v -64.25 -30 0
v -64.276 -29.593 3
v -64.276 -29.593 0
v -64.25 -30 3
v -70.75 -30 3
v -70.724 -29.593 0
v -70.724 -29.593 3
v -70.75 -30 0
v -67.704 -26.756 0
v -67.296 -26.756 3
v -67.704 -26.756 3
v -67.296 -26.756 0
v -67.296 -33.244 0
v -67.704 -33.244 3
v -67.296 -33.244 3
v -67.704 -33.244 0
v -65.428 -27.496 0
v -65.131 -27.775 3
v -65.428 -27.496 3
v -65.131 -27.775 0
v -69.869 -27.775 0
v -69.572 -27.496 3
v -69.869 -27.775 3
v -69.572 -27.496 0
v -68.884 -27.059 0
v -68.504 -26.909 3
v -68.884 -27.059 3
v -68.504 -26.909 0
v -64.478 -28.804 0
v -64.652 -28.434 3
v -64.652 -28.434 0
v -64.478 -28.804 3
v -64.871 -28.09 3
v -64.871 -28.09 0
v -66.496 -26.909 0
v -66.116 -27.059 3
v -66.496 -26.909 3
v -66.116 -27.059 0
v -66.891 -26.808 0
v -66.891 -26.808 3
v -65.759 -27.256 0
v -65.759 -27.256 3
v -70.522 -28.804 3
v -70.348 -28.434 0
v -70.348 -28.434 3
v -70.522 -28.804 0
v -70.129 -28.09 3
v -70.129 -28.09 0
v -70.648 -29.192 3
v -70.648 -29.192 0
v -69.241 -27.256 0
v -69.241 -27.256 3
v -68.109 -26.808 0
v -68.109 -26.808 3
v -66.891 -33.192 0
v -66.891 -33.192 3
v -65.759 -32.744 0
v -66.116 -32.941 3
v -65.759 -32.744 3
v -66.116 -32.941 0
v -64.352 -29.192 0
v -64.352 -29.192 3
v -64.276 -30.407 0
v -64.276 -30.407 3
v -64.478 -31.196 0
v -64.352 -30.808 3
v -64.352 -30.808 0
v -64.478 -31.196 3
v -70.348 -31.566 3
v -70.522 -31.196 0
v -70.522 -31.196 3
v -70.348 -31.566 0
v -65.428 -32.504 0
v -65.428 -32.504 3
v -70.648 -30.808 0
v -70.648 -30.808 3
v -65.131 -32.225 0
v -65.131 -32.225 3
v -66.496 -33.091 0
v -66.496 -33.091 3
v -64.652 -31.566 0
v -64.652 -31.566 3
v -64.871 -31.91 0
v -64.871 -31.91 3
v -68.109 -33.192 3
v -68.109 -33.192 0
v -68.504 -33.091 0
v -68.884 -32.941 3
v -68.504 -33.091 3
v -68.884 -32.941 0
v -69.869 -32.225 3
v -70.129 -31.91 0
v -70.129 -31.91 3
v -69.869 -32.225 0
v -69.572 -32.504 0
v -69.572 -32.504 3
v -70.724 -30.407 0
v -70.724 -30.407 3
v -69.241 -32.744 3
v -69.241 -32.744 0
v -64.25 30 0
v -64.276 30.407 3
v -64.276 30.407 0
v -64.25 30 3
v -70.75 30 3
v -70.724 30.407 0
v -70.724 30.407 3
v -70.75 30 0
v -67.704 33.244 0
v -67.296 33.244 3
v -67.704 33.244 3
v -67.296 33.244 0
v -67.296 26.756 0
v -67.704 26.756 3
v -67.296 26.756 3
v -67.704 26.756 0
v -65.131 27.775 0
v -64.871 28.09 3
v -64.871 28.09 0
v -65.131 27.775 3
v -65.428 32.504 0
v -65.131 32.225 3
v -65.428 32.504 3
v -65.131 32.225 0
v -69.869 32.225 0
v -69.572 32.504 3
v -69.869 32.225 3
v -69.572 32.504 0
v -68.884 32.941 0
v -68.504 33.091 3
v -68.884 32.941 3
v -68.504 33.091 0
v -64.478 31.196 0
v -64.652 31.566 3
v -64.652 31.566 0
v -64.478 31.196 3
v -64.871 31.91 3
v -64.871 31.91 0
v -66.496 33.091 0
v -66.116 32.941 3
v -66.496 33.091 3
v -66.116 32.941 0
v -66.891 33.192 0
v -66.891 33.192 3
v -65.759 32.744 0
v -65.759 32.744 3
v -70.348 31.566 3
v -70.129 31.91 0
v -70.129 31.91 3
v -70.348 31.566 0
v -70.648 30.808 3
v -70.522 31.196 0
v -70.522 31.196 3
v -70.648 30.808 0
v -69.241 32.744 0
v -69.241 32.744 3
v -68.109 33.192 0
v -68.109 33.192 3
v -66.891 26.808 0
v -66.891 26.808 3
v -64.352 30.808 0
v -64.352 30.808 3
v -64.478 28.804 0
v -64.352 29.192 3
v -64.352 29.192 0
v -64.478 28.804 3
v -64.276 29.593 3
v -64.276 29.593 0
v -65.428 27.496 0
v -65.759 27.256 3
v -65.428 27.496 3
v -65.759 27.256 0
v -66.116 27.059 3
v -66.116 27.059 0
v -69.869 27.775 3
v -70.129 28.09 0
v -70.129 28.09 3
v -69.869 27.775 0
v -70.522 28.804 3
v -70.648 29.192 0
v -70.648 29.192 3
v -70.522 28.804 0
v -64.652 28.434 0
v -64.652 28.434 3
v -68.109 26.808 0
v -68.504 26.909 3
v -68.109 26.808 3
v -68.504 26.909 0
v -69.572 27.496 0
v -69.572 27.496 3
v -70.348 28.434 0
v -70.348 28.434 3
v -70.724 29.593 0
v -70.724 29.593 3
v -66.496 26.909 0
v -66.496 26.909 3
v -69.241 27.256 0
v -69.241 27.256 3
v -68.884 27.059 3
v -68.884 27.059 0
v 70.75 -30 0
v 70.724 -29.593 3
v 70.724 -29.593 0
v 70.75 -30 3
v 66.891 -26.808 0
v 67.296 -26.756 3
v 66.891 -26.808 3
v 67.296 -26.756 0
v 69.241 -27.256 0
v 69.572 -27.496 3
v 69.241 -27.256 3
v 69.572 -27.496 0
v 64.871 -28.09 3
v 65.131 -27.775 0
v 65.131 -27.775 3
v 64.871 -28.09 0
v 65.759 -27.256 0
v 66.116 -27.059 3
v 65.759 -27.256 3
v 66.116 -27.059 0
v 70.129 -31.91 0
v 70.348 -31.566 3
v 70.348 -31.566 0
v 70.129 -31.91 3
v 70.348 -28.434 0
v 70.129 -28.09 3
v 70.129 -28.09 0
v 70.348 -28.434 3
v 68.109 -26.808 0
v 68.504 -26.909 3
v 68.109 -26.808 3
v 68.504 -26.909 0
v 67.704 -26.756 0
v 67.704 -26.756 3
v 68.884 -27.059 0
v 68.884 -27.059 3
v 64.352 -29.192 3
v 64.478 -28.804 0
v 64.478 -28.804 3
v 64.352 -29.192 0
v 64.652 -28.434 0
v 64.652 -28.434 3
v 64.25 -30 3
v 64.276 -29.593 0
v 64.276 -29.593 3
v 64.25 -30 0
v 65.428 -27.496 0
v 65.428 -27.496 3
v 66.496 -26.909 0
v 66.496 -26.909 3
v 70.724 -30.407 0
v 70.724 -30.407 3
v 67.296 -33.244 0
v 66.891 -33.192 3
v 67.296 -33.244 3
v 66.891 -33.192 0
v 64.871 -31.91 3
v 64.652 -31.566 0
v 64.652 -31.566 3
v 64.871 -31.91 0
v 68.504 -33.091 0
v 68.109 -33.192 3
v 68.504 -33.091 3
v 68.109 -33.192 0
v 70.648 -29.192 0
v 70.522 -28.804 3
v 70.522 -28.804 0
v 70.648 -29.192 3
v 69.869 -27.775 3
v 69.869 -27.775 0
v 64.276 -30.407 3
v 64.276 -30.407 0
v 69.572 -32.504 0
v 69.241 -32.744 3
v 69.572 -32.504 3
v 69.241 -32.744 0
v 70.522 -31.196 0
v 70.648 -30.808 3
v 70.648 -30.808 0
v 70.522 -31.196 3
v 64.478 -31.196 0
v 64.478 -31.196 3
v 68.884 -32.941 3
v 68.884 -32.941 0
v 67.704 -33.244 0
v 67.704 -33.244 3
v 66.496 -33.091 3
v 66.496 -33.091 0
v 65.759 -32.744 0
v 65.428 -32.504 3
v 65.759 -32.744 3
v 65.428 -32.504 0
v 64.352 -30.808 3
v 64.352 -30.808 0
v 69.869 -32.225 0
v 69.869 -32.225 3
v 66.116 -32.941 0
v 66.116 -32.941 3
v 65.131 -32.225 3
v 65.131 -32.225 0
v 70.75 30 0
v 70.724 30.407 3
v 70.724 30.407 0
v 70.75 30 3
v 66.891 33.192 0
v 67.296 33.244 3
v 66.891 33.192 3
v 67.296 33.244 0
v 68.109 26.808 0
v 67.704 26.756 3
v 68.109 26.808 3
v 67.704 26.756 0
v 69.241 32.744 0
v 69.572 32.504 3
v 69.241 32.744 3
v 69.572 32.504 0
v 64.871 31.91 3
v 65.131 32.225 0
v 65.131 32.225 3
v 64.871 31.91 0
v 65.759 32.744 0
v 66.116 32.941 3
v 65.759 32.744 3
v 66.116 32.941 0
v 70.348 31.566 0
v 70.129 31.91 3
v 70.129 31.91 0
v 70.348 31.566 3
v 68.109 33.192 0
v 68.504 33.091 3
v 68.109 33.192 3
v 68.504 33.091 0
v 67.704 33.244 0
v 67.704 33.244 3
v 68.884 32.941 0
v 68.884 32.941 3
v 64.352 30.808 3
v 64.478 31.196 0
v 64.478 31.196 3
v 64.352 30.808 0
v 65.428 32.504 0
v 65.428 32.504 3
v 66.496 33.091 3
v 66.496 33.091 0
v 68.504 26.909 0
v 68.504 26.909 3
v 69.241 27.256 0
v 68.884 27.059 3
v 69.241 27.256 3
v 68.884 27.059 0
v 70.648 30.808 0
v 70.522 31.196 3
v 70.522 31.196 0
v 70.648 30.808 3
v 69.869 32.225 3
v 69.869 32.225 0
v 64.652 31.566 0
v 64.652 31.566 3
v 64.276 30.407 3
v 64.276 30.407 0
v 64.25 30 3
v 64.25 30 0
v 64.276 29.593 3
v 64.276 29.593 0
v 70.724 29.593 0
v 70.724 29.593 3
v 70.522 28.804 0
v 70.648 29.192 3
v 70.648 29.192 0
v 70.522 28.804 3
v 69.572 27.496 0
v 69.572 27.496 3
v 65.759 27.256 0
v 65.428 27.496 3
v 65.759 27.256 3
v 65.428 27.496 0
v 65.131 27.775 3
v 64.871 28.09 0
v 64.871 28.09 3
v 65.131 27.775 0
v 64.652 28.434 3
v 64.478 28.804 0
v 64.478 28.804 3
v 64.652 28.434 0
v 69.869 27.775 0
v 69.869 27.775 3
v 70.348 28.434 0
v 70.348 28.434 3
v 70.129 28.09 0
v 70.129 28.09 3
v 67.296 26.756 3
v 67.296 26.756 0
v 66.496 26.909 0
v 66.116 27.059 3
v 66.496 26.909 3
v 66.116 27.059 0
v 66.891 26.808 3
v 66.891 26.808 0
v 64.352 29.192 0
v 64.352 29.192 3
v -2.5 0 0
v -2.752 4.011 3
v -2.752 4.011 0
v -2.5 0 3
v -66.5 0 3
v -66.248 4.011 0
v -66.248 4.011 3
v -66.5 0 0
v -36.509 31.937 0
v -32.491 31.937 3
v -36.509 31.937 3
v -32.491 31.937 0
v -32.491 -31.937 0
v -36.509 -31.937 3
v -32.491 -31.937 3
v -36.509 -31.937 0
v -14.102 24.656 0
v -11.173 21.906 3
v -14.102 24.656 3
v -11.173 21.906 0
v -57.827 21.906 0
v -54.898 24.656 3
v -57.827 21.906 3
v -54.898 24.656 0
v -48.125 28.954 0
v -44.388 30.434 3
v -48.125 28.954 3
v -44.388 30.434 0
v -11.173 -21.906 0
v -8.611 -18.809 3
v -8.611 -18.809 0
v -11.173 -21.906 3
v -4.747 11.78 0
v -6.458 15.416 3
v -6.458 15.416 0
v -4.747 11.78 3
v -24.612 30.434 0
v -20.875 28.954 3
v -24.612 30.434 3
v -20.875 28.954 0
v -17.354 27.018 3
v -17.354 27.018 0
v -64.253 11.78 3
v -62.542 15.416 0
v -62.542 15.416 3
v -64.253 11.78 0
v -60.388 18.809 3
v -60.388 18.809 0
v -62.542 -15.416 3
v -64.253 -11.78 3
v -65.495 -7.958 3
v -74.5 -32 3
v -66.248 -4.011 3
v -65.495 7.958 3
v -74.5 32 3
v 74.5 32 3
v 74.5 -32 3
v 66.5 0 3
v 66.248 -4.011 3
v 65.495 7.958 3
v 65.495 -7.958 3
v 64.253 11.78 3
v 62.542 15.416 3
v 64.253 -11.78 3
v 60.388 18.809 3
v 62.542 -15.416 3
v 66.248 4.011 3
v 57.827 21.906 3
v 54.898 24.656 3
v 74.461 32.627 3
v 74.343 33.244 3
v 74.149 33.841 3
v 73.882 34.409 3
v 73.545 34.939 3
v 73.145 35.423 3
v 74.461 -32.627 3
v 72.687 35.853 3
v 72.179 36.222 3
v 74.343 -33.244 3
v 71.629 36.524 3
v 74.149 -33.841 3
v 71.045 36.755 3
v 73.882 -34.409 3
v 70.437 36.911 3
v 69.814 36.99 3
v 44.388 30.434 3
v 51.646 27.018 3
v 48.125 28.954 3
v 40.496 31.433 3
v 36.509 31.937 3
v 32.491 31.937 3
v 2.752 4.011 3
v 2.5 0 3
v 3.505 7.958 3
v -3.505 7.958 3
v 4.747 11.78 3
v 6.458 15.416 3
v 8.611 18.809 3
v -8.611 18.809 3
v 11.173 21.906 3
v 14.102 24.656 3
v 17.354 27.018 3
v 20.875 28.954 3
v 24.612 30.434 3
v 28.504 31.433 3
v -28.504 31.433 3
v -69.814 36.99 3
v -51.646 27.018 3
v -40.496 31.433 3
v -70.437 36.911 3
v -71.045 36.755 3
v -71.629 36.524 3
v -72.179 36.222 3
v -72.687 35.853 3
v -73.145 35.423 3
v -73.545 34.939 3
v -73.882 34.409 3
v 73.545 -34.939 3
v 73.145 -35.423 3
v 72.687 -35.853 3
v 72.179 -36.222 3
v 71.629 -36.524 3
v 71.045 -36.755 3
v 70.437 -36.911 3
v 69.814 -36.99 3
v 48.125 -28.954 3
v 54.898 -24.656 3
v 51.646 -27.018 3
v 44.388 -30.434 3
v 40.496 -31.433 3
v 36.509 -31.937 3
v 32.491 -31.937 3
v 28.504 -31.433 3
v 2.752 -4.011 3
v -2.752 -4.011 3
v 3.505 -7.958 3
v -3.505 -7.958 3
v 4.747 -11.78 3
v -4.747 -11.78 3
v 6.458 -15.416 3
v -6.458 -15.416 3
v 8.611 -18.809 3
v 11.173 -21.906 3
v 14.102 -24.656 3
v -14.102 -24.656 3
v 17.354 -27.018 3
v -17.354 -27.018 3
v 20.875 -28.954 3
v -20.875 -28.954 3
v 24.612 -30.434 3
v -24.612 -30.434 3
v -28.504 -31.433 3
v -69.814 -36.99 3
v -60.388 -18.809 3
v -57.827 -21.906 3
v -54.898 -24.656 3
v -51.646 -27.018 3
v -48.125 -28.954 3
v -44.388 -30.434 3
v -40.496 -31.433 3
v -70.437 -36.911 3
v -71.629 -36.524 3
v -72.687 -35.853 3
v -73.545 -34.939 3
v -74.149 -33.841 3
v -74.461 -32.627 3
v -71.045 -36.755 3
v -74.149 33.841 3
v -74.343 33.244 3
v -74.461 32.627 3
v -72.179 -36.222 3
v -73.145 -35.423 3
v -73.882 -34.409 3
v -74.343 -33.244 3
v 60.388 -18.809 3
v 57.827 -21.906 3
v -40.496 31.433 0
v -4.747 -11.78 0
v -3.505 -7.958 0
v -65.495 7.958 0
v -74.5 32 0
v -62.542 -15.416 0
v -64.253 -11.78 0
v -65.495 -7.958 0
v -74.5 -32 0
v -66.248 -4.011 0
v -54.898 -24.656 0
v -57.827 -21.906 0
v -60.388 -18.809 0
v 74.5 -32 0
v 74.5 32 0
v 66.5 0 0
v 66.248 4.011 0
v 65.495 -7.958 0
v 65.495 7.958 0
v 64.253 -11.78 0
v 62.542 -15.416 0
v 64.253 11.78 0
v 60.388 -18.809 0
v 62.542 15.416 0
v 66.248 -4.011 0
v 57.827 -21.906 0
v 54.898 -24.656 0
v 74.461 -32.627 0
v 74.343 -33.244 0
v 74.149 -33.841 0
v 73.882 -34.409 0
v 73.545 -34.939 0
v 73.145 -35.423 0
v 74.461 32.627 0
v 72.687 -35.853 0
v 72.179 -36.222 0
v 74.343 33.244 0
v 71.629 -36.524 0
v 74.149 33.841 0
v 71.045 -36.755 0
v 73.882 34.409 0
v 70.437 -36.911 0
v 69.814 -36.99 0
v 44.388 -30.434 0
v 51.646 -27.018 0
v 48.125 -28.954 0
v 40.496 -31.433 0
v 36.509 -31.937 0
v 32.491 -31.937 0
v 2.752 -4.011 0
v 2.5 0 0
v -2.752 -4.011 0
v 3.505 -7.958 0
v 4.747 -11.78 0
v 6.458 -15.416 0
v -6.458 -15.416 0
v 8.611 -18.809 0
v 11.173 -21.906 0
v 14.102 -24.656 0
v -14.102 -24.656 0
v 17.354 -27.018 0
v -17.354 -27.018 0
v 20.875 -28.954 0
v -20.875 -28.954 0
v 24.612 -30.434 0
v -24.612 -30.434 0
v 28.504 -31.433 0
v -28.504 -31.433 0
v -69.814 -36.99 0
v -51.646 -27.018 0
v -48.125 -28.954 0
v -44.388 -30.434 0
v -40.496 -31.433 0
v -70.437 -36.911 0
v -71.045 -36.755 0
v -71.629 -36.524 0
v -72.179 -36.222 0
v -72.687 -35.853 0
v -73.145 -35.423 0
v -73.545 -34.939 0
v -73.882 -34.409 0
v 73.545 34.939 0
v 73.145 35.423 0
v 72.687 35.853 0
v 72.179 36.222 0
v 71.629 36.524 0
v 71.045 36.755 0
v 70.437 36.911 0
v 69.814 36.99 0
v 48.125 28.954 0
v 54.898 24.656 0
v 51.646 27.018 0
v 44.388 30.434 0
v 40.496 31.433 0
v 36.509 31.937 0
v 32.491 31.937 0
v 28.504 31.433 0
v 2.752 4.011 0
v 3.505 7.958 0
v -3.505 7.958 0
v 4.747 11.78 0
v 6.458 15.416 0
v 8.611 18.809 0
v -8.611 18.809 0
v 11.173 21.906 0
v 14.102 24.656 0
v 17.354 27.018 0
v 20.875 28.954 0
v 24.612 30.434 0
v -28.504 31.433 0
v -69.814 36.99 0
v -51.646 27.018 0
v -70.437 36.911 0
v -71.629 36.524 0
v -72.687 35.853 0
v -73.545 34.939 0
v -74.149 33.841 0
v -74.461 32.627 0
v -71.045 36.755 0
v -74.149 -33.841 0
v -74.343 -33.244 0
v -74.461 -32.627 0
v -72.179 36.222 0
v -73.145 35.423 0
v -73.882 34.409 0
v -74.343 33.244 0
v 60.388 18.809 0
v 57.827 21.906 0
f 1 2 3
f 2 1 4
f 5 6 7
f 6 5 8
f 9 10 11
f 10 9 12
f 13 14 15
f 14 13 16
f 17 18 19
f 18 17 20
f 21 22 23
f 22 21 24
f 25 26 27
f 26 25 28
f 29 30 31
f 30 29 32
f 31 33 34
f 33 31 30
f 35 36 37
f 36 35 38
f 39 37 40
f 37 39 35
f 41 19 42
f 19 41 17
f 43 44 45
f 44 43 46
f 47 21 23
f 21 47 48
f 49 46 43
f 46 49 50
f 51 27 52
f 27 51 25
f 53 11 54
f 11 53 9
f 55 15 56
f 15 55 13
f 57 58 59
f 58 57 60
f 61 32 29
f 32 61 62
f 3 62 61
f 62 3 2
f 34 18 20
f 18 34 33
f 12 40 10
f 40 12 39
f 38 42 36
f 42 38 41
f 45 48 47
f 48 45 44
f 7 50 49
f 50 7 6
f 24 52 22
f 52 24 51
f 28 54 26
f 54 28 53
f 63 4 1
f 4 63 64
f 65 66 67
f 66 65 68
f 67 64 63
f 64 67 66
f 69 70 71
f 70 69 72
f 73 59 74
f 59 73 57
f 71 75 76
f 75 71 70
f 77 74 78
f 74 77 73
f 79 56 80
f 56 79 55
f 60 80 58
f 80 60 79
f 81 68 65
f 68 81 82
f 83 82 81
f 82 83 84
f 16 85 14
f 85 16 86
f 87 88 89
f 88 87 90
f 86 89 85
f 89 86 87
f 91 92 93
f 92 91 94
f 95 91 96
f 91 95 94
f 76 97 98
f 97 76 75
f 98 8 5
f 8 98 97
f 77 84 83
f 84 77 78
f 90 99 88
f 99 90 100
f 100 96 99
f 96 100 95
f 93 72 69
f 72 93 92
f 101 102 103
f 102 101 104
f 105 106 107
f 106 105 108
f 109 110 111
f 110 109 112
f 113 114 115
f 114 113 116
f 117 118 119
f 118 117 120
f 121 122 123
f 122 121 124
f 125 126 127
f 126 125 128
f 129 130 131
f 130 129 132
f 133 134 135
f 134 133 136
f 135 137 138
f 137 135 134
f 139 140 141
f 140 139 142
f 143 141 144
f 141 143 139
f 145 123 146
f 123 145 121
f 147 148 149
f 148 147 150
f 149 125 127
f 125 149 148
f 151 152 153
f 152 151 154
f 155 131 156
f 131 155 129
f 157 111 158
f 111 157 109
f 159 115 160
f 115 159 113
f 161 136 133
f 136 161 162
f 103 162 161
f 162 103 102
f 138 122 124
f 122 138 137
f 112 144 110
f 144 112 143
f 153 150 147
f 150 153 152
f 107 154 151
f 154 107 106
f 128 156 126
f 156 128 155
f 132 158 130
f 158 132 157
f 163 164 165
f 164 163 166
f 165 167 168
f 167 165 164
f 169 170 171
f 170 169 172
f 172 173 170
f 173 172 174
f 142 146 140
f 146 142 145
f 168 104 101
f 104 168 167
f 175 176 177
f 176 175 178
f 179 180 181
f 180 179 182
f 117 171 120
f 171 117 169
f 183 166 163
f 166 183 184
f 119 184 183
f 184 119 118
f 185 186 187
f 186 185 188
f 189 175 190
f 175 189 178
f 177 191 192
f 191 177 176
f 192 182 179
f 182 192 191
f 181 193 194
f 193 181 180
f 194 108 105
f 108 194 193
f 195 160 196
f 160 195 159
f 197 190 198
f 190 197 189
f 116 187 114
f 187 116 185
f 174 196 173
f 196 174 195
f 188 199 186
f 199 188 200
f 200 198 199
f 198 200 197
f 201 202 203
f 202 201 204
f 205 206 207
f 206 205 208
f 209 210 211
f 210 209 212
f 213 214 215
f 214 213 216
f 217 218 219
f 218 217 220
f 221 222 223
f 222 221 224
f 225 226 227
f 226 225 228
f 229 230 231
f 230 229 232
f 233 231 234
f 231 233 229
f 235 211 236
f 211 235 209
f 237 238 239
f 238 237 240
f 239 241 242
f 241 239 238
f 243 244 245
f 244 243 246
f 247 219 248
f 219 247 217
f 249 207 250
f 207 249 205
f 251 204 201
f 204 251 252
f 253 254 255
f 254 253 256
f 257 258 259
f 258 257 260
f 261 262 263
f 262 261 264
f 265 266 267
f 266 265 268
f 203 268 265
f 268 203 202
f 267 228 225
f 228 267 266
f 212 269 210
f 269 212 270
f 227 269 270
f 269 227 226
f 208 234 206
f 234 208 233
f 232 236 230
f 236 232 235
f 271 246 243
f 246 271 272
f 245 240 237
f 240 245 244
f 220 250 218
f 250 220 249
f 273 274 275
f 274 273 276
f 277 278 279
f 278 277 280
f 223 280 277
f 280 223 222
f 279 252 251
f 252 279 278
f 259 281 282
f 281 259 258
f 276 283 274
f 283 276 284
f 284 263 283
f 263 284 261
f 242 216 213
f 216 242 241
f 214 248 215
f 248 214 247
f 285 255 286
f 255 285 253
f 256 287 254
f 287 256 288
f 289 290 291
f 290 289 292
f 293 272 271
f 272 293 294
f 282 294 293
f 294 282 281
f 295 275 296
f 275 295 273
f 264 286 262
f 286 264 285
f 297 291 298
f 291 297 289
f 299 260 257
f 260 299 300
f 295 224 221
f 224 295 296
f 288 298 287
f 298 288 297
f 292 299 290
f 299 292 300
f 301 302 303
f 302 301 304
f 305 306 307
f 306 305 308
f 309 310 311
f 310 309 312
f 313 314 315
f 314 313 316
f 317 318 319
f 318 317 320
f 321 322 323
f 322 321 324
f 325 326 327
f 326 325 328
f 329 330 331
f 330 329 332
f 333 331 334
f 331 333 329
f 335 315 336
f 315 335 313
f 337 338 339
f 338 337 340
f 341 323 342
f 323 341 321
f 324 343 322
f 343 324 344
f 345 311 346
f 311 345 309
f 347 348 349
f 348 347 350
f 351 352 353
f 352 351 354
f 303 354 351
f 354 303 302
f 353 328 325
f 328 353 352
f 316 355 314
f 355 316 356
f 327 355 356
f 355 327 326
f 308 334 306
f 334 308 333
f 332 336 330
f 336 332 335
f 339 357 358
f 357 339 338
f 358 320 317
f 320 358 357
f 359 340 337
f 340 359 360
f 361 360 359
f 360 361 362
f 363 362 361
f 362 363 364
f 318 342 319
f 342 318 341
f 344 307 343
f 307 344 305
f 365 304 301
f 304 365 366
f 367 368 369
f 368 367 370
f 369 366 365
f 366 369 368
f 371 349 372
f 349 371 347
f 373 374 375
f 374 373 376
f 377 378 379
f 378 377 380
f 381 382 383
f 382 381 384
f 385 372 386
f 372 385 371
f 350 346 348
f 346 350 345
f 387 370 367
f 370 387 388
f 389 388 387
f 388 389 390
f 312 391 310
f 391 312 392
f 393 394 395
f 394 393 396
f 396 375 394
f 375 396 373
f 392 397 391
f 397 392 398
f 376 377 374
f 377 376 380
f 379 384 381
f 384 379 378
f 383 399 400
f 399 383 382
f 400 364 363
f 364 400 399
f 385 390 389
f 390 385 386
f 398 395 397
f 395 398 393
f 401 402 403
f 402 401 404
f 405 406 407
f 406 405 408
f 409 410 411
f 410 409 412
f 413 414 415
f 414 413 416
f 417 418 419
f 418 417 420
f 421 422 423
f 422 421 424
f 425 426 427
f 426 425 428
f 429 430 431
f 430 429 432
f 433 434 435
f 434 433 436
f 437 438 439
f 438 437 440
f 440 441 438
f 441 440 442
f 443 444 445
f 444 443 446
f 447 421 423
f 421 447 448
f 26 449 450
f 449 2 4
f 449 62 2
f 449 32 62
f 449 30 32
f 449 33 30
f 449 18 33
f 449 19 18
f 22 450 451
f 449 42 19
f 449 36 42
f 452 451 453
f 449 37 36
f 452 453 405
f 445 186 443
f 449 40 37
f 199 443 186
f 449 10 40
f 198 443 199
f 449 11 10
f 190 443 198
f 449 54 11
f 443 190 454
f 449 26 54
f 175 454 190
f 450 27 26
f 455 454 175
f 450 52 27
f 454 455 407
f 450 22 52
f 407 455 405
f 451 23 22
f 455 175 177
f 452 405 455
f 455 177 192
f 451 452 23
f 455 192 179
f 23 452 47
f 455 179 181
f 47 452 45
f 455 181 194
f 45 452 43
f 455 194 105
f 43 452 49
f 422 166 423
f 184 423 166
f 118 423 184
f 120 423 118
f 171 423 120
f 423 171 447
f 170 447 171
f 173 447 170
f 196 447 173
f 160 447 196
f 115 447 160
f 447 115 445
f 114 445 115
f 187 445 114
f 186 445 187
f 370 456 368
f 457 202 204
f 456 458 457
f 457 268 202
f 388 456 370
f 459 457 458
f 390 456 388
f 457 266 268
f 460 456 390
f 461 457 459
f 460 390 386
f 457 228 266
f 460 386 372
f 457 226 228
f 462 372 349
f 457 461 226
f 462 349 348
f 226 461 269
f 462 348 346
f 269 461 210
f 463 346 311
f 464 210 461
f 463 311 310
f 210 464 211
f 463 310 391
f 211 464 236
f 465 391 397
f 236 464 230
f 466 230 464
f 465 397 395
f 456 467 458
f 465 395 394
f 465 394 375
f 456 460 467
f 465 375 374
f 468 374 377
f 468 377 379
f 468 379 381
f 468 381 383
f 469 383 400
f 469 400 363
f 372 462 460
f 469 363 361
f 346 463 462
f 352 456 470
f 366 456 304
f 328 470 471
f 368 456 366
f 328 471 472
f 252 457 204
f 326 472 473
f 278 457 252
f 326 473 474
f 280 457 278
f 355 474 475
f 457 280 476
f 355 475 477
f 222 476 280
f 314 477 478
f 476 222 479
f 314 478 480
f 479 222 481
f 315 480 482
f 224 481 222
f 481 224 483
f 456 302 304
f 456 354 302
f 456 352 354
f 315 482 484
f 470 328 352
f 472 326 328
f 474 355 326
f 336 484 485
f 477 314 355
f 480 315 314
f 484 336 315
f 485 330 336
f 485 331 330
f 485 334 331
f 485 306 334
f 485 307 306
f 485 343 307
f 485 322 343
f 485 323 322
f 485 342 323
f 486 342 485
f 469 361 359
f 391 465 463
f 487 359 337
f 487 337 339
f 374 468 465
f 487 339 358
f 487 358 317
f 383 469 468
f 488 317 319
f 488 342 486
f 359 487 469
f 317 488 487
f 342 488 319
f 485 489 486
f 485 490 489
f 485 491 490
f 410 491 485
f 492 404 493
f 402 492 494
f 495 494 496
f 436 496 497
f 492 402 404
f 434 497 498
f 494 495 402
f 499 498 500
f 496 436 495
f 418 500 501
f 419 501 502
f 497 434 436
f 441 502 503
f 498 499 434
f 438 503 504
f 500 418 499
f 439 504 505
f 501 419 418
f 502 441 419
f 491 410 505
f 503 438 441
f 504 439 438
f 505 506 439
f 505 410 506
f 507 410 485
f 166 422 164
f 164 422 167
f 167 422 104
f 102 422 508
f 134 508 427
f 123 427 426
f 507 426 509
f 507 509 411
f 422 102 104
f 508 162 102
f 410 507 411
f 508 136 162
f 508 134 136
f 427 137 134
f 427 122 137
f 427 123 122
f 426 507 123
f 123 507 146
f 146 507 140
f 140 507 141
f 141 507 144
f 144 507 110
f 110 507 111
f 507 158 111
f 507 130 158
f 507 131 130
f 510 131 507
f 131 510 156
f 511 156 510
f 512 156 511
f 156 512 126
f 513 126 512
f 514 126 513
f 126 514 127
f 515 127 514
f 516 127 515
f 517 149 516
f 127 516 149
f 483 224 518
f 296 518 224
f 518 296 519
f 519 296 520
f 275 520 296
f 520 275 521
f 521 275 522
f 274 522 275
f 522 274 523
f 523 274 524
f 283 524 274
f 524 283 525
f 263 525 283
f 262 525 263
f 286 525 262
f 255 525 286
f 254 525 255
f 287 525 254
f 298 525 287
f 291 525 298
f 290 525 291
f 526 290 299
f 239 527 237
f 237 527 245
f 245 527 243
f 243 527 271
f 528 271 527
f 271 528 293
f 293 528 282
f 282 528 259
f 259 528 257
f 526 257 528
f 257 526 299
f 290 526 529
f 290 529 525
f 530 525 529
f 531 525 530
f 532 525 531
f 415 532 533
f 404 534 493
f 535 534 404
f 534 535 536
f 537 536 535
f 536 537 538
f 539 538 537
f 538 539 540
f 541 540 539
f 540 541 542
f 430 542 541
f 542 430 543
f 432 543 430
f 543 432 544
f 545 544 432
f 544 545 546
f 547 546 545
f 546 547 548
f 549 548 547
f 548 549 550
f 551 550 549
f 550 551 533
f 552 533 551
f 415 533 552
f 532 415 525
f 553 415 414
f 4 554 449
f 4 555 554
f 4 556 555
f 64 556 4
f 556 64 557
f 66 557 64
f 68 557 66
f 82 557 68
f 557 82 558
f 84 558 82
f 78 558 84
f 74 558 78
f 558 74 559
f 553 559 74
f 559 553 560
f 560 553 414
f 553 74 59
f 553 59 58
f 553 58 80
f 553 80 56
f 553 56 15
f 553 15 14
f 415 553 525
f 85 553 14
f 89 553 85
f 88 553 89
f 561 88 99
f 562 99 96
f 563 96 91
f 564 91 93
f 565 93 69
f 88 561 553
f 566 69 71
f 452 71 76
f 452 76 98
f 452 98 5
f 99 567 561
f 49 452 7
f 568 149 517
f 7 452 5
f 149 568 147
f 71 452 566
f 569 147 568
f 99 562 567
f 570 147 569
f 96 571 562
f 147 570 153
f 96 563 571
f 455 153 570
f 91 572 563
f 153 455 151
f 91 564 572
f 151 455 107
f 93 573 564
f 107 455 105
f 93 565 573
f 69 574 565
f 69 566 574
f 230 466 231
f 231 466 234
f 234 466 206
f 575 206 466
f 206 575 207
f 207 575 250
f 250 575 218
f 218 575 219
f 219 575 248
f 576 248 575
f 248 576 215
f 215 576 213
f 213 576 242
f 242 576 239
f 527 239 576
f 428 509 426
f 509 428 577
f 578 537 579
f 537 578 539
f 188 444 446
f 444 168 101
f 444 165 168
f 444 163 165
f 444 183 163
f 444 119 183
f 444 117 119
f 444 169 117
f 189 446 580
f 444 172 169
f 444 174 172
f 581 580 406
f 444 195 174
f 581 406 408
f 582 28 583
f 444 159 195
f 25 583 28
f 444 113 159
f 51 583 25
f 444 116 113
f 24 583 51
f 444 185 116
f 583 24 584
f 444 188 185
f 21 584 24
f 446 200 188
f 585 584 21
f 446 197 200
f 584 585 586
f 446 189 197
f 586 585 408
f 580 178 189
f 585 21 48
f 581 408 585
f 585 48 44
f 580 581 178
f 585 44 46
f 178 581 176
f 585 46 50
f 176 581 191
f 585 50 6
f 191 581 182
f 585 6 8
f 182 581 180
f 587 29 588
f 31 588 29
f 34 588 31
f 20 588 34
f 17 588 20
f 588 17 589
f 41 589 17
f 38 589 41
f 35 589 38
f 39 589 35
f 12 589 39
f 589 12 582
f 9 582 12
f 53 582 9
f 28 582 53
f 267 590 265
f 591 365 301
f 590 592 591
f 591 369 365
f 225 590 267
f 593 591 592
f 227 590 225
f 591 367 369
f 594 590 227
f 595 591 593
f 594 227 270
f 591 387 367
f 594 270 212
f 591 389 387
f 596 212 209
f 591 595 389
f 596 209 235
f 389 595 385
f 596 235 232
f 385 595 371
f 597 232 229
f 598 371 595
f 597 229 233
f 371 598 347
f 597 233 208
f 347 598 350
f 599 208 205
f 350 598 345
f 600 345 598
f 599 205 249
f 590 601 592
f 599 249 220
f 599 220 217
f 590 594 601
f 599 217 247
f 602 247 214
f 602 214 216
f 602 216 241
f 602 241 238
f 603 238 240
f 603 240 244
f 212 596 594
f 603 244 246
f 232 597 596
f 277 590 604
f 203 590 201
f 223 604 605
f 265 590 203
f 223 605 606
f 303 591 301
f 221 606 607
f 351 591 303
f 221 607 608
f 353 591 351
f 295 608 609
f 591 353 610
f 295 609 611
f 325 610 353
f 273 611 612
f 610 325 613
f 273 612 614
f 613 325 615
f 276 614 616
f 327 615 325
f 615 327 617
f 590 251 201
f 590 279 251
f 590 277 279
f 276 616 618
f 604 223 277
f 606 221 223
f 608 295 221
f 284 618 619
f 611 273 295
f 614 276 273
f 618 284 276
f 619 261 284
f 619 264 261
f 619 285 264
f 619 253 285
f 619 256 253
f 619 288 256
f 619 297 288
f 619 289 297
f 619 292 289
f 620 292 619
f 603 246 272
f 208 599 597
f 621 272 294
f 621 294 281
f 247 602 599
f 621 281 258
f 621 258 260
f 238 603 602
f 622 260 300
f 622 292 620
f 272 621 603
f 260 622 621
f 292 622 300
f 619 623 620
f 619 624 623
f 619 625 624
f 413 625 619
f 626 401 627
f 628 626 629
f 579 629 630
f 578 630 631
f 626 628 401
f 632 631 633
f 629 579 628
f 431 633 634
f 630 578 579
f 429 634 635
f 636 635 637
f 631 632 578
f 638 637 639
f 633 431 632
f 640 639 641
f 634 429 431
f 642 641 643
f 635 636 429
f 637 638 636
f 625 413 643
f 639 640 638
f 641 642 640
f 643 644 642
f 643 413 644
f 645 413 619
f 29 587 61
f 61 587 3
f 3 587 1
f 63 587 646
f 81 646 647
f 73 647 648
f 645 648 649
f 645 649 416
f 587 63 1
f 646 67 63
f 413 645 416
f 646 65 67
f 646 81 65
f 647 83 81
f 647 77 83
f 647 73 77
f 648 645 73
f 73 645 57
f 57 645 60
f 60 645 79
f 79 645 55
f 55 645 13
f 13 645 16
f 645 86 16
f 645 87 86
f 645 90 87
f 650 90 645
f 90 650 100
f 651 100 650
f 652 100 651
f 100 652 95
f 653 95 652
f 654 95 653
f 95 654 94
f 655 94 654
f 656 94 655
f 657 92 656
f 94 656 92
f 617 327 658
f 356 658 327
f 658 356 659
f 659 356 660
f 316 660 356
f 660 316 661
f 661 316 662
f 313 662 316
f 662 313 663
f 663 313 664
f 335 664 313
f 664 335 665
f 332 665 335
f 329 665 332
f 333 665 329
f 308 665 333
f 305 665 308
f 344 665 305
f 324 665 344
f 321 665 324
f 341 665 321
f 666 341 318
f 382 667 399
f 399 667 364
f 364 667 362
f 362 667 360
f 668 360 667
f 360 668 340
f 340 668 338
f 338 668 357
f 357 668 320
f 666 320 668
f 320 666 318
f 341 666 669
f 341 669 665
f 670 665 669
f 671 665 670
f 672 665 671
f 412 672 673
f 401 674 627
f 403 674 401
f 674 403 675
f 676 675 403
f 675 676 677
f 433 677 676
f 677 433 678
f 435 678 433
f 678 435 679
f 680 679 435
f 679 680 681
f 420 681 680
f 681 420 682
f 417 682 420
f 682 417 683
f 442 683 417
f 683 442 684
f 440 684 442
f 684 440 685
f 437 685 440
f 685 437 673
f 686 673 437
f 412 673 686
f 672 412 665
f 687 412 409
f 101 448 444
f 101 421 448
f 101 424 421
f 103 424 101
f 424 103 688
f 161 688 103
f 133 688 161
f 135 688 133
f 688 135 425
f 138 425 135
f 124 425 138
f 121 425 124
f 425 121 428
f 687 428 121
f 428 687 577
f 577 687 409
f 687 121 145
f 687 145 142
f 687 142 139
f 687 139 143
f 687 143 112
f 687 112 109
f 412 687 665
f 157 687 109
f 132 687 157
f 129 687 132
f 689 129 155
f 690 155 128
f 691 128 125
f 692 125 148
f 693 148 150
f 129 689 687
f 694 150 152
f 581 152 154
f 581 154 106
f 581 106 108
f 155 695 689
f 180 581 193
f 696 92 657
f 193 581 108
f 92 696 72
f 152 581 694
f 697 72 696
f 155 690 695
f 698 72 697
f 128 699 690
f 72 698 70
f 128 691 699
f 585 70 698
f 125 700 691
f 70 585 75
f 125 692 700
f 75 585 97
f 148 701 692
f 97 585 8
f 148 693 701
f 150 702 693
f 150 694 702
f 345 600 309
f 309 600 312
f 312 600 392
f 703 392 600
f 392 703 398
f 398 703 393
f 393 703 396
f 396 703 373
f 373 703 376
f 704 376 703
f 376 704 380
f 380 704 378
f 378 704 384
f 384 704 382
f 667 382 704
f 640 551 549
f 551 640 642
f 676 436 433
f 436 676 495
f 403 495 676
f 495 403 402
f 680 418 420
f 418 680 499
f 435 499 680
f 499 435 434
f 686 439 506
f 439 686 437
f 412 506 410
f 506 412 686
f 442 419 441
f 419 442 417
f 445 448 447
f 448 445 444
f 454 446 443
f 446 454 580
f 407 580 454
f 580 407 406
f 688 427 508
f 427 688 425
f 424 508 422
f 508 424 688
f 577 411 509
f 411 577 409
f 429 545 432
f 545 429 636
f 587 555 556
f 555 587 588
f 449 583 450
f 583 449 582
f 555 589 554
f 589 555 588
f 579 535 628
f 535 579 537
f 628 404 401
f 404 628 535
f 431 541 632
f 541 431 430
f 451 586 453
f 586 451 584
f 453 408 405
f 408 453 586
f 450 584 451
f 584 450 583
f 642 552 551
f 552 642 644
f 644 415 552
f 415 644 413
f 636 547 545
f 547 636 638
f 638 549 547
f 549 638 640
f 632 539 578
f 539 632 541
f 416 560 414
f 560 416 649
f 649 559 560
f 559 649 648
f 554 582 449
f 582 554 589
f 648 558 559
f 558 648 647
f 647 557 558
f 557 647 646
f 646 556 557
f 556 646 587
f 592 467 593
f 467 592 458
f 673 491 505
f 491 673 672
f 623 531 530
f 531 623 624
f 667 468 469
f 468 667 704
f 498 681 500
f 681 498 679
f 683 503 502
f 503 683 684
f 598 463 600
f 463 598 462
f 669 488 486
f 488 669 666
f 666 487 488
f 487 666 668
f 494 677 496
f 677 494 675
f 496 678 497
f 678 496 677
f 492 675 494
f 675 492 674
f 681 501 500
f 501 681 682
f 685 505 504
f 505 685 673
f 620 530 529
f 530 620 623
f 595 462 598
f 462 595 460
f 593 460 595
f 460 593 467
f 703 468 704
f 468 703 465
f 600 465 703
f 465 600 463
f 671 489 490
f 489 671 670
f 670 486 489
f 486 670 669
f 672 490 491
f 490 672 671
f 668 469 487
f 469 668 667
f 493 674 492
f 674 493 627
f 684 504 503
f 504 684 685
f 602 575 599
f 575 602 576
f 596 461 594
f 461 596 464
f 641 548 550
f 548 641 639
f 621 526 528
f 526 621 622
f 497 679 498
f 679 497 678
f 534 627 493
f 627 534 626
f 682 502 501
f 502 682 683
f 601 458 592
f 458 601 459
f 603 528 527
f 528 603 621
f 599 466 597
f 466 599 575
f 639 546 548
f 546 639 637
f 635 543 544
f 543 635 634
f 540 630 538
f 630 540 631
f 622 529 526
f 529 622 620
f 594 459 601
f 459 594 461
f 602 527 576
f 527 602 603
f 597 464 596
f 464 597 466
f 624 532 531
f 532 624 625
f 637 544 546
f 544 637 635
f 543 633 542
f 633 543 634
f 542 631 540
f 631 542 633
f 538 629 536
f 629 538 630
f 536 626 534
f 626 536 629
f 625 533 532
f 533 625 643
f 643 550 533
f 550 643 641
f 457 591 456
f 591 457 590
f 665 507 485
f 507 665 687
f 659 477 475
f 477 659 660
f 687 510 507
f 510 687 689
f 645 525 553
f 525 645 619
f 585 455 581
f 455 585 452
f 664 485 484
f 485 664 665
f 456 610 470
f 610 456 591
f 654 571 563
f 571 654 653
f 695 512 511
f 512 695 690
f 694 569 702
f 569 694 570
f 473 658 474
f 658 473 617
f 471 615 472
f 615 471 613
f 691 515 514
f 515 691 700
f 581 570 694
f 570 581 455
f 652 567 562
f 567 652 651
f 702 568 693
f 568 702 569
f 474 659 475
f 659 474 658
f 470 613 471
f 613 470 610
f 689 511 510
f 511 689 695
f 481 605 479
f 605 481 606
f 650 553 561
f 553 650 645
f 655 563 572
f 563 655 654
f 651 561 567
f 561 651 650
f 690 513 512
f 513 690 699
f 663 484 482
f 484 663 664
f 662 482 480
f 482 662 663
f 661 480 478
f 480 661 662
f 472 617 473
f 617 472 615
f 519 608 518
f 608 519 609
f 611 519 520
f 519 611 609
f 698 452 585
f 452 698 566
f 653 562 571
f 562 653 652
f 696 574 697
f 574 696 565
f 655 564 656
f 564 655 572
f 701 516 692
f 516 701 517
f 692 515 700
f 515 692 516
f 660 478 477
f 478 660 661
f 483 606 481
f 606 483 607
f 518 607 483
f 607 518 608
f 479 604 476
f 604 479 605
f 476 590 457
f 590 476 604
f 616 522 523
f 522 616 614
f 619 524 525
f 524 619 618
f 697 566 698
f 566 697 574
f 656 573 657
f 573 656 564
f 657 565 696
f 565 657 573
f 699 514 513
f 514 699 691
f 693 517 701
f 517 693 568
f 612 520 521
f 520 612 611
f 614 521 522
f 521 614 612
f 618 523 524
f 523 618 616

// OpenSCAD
$fn = 50;


difference() {
	union() {
		hull() {
			translate(v = [-69.5000000000, 32.0000000000, 0]) {
				cylinder(h = 3, r = 5);
			}
			translate(v = [69.5000000000, 32.0000000000, 0]) {
				cylinder(h = 3, r = 5);
			}
			translate(v = [-69.5000000000, -32.0000000000, 0]) {
				cylinder(h = 3, r = 5);
			}
			translate(v = [69.5000000000, -32.0000000000, 0]) {
				cylinder(h = 3, r = 5);
			}
		}
	}
	union() {
		#translate(v = [-67.5000000000, -30.0000000000, -100.0000000000]) {
			cylinder(h = 200, r = 3.2500000000);
		}
		#translate(v = [-67.5000000000, 30.0000000000, -100.0000000000]) {
			cylinder(h = 200, r = 3.2500000000);
		}
		#translate(v = [67.5000000000, -30.0000000000, -100.0000000000]) {
			cylinder(h = 200, r = 3.2500000000);
		}
		#translate(v = [67.5000000000, 30.0000000000, -100.0000000000]) {
			cylinder(h = 200, r = 3.2500000000);
		}
		#translate(v = [-34.5000000000, 0, 0]) {
			cylinder(h = 3, r = 32.0000000000);
		}
		#translate(v = [34.5000000000, 0, 0]) {
			cylinder(h = 3, r = 32.0000000000);
		}
	}
}
